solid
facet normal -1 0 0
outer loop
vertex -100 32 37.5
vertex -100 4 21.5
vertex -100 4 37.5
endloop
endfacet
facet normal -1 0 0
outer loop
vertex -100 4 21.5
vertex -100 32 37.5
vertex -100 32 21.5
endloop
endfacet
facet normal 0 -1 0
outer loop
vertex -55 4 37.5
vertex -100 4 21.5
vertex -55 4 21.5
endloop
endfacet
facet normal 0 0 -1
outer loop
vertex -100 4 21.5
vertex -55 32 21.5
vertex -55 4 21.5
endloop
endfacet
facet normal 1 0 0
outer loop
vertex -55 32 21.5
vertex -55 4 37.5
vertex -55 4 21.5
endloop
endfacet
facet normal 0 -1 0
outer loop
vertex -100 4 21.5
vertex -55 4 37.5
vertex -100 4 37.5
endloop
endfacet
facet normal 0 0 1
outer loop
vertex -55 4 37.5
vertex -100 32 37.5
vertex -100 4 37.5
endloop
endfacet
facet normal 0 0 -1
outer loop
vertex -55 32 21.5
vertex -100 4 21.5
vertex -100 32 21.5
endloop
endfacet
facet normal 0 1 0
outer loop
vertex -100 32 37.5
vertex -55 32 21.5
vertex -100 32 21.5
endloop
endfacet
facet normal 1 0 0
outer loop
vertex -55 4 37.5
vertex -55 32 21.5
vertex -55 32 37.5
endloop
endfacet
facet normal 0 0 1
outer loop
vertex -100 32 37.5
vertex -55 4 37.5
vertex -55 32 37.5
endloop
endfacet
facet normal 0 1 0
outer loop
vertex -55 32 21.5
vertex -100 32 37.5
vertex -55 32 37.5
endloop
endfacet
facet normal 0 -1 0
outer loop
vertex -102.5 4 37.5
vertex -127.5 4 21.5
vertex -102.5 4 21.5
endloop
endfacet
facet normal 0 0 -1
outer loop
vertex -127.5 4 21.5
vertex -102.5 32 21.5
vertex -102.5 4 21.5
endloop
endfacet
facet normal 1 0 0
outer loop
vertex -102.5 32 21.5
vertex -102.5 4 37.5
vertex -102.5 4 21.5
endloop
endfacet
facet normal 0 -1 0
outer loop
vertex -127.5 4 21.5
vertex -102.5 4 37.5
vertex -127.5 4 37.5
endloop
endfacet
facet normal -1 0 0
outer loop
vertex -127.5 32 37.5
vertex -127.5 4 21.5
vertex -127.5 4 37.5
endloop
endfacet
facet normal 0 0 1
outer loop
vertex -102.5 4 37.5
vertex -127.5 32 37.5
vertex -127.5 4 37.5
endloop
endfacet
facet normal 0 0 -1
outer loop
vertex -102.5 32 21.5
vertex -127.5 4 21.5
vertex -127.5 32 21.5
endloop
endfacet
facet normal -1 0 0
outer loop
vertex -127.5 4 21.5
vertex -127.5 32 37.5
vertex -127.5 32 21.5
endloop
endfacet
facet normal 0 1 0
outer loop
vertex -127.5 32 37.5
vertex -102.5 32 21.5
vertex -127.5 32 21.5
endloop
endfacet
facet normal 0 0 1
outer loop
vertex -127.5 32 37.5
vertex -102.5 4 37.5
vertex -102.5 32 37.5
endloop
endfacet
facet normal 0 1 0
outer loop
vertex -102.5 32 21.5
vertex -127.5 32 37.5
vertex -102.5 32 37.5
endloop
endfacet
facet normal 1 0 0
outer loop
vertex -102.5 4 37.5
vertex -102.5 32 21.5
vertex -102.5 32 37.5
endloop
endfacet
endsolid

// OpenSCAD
// file: ../md_vitamins.scad
// Envelopes of the bought electronics, placed where the parts expect them (for fit checks and renders)
SG90_STL = "/Users/hemangvora/OpenDuck/upstream/Open_Duck_Mini/mini_bdx/robots/open_duck_mini_v2/sg90.stl";
module v_sg90_jaw() multmatrix([[1,0,0,JAW_P[0]-5.7],[0,0,-1,-SG_BASE],[0,1,0,JAW_P[1]],[0,0,0,1]]) import(SG90_STL);
module v_radxa() {                         // Radxa Zero 3W 65 x 30 board on 6 mm standoffs + 16 mm component/wire budget
    translate([RADXA_X0, RADXA_Y0, CH_Z1 + 6]) { cube([65, 30, 1.6]); translate([2, 2, 1.6]) cube([61, 26, 16]); translate([0, 0, -2]) cube([65, 30, 2]); }
}
module v_buck() translate([-30, -13.5, CH_Z1 + 1]) cube([46, 27, 12]);            // XY-3606 (HW-688), generous envelope
module v_camera() translate([103.8, -12.5, EYE_C[1] - 14.5]) { cube([1.0, 25, 24]); translate([1.0, 12.5 - 4.25, 14.5 - 4.25]) cube([5.2, 8.5, 8.5]); }  // Pi cam v2 / IMX219 board + lens module
module v_tof() translate([103.8, -6.5, TOF_C[1] - 6.5]) { cube([1.0, 13, 13]); translate([1.0, 6.5 - 3.2, 6.5 - 1.5]) cube([1.75, 6.4, 3.0]); }
module head_vitamins() { v_sg90_jaw(); v_radxa(); v_buck(); v_camera(); v_tof(); }

// ---------------- body electronics ----------------
module v_pack()    translate([DK_X0, -PACK[1] / 2, DK_Z1]) cube(PACK);                       // 3S1P Samsung 30Q pack
module v_bms()     translate([DK_X0 + 5, -31, DK_Z1 + PACK[2] + 0.5]) cube([48, 62, 7]);      // 3S 40 A BMS, 5-FET board
module v_adapter() translate([-44, -21, SHELF[4] + 4]) { cube([33, 42, 1.6]); translate([1, 1, 1.6]) cube([31, 40, 10]); }   // Bus Servo Adapter (A)
module v_switch()  {   // AUTO MT 12 V 20 A toggle, 12 mm hole; body 28 x 16 behind the panel, cover outside
    translate([DK_X0, SWITCH_C[0] - 14, SWITCH_C[1] - 8]) cube([45, 28, 16]);
    translate([BX_R - 25, SWITCH_C[0] - 14, SWITCH_C[1] - 8]) cube([25, 28, 16]);
}
module v_xt30()    translate([DK_X0, XT30_C[0] - 5.1, XT30_C[1] - 2.6]) cube([16, 10.2, 5.2]);
module v_balance() translate([DK_X0, BAL_C[0] - 6.2, BAL_C[1] - 2.9]) cube([8, 12.4, 5.8]);
module v_caps()    for (y = [26, 33]) translate([-40, y, SHELF[4] + 5.3]) rotate([0, 90, 0]) cylinder(d = 10.2, h = 21);  // 2 x 1000 uF 25 V lying on the shelf
module body_vitamins() { v_pack(); v_bms(); v_adapter(); v_switch(); v_xt30(); v_balance(); v_caps(); }
// file: ../md_params.scad
// =====================================================================
//  Microduck-look skin for the Open Duck Mini v2 skeleton
//  Shared parameters and helpers.
//  Frame: Open Duck print/robot frame, mm. +x forward, +y left, +z up.
//  Every part is modelled where it sits on the robot (zero pose).
// =====================================================================

$fn = 72;
EPS = 0.01;

// ---------- fasteners ----------
INSERT_D   = 4.0;   // hole for M3 x 5 brass heat-set insert (Amazon B0DZ8B7FW1)
INSERT_L   = 6.0;   // hole depth for that insert
M3_CLR     = 3.4;   // M3 clearance
M3_HEAD    = 6.5;   // M3 socket-head counterbore
M3_NUT     = 6.4;   // M3 nut across corners (+clearance)
M2_TAP     = 1.8;   // M2 self-tapping pilot (SG90 tab screws, servo adapter)
M25_TAP    = 2.2;   // M2.5 self-tapping pilot (Radxa)
M2_CLR     = 2.4;

// ---------- colours (for previews only) ----------
C_WHITE = [0.95, 0.94, 0.90];
C_BLACK = [0.13, 0.13, 0.14];

// ---------- helpers ----------
function lerp(a, b, t) = a + (b - a) * t;

// Section with vertical sides from zb to zc and a superellipse cap from zc to zt.
// Points are (y, z). n = 2 gives an ellipse, larger n gives a squarer top.
function se_pts(w, zb, zc, zt, n, N = 56) =
    concat(
        [[ w, zb]],
        [for (i = [0:N]) let(t = i * 180 / N, c = cos(t), s = sin(t))
            [w * sign(c) * pow(abs(c), 2 / n), zc + (zt - zc) * pow(abs(s), 2 / n)]],
        [[-w, zb]]
    );

// st = [x, half_width, z_bottom, z_curve_start, z_top, exponent]
module station(st, inset = 0, ext = 0) {
    translate([st[0], 0, 0]) rotate([90, 0, 90])
        linear_extrude(height = EPS, center = true)
            offset(delta = -inset)
                polygon(se_pts(st[1], st[2] - ext, st[3], st[4], st[5]));
}

// piecewise loft through convex stations (hull of neighbours)
module loft(sts, inset = 0, ext = 0) {
    for (i = [0:len(sts) - 2])
        hull() { station(sts[i], inset, ext); station(sts[i + 1], inset, ext); }
}

// station parameters interpolated at any x inside the list
function st_at(sts, x) =
    let(i = max([for (k = [0:len(sts) - 2]) if (sts[k][0] <= x) k]),
        a = sts[i], b = sts[i + 1], t = (x - a[0]) / (b[0] - a[0]))
    [x, lerp(a[1], b[1], t), lerp(a[2], b[2], t), lerp(a[3], b[3], t),
        lerp(a[4], b[4], t), lerp(a[5], b[5], t)];

// heat-set insert pocket: opening at origin, going along -z by default
module insert_hole(depth = INSERT_L, d = INSERT_D) {
    translate([0, 0, -depth]) cylinder(d = d, h = depth + EPS);
    translate([0, 0, -0.6]) cylinder(d1 = d, d2 = d + 0.8, h = 0.6 + EPS);   // lead-in chamfer
}

// M3 clearance with counterbore, axis +z, counterbore at the top
module m3_cb(len_total, cb_depth) {
    translate([0, 0, -EPS]) cylinder(d = M3_CLR, h = len_total + 2 * EPS);
    translate([0, 0, len_total - cb_depth]) cylinder(d = M3_HEAD, h = cb_depth + 1);
}

module rrect(x0, x1, y0, y1, r) {
    translate([x0 + r, y0 + r]) offset(r = r) square([x1 - x0 - 2 * r, y1 - y0 - 2 * r]);
}
// main file
include <../md_params.scad>
include <../md_head.scad>
include <../md_body.scad>
include <../md_vitamins.scad>
v_switch();
